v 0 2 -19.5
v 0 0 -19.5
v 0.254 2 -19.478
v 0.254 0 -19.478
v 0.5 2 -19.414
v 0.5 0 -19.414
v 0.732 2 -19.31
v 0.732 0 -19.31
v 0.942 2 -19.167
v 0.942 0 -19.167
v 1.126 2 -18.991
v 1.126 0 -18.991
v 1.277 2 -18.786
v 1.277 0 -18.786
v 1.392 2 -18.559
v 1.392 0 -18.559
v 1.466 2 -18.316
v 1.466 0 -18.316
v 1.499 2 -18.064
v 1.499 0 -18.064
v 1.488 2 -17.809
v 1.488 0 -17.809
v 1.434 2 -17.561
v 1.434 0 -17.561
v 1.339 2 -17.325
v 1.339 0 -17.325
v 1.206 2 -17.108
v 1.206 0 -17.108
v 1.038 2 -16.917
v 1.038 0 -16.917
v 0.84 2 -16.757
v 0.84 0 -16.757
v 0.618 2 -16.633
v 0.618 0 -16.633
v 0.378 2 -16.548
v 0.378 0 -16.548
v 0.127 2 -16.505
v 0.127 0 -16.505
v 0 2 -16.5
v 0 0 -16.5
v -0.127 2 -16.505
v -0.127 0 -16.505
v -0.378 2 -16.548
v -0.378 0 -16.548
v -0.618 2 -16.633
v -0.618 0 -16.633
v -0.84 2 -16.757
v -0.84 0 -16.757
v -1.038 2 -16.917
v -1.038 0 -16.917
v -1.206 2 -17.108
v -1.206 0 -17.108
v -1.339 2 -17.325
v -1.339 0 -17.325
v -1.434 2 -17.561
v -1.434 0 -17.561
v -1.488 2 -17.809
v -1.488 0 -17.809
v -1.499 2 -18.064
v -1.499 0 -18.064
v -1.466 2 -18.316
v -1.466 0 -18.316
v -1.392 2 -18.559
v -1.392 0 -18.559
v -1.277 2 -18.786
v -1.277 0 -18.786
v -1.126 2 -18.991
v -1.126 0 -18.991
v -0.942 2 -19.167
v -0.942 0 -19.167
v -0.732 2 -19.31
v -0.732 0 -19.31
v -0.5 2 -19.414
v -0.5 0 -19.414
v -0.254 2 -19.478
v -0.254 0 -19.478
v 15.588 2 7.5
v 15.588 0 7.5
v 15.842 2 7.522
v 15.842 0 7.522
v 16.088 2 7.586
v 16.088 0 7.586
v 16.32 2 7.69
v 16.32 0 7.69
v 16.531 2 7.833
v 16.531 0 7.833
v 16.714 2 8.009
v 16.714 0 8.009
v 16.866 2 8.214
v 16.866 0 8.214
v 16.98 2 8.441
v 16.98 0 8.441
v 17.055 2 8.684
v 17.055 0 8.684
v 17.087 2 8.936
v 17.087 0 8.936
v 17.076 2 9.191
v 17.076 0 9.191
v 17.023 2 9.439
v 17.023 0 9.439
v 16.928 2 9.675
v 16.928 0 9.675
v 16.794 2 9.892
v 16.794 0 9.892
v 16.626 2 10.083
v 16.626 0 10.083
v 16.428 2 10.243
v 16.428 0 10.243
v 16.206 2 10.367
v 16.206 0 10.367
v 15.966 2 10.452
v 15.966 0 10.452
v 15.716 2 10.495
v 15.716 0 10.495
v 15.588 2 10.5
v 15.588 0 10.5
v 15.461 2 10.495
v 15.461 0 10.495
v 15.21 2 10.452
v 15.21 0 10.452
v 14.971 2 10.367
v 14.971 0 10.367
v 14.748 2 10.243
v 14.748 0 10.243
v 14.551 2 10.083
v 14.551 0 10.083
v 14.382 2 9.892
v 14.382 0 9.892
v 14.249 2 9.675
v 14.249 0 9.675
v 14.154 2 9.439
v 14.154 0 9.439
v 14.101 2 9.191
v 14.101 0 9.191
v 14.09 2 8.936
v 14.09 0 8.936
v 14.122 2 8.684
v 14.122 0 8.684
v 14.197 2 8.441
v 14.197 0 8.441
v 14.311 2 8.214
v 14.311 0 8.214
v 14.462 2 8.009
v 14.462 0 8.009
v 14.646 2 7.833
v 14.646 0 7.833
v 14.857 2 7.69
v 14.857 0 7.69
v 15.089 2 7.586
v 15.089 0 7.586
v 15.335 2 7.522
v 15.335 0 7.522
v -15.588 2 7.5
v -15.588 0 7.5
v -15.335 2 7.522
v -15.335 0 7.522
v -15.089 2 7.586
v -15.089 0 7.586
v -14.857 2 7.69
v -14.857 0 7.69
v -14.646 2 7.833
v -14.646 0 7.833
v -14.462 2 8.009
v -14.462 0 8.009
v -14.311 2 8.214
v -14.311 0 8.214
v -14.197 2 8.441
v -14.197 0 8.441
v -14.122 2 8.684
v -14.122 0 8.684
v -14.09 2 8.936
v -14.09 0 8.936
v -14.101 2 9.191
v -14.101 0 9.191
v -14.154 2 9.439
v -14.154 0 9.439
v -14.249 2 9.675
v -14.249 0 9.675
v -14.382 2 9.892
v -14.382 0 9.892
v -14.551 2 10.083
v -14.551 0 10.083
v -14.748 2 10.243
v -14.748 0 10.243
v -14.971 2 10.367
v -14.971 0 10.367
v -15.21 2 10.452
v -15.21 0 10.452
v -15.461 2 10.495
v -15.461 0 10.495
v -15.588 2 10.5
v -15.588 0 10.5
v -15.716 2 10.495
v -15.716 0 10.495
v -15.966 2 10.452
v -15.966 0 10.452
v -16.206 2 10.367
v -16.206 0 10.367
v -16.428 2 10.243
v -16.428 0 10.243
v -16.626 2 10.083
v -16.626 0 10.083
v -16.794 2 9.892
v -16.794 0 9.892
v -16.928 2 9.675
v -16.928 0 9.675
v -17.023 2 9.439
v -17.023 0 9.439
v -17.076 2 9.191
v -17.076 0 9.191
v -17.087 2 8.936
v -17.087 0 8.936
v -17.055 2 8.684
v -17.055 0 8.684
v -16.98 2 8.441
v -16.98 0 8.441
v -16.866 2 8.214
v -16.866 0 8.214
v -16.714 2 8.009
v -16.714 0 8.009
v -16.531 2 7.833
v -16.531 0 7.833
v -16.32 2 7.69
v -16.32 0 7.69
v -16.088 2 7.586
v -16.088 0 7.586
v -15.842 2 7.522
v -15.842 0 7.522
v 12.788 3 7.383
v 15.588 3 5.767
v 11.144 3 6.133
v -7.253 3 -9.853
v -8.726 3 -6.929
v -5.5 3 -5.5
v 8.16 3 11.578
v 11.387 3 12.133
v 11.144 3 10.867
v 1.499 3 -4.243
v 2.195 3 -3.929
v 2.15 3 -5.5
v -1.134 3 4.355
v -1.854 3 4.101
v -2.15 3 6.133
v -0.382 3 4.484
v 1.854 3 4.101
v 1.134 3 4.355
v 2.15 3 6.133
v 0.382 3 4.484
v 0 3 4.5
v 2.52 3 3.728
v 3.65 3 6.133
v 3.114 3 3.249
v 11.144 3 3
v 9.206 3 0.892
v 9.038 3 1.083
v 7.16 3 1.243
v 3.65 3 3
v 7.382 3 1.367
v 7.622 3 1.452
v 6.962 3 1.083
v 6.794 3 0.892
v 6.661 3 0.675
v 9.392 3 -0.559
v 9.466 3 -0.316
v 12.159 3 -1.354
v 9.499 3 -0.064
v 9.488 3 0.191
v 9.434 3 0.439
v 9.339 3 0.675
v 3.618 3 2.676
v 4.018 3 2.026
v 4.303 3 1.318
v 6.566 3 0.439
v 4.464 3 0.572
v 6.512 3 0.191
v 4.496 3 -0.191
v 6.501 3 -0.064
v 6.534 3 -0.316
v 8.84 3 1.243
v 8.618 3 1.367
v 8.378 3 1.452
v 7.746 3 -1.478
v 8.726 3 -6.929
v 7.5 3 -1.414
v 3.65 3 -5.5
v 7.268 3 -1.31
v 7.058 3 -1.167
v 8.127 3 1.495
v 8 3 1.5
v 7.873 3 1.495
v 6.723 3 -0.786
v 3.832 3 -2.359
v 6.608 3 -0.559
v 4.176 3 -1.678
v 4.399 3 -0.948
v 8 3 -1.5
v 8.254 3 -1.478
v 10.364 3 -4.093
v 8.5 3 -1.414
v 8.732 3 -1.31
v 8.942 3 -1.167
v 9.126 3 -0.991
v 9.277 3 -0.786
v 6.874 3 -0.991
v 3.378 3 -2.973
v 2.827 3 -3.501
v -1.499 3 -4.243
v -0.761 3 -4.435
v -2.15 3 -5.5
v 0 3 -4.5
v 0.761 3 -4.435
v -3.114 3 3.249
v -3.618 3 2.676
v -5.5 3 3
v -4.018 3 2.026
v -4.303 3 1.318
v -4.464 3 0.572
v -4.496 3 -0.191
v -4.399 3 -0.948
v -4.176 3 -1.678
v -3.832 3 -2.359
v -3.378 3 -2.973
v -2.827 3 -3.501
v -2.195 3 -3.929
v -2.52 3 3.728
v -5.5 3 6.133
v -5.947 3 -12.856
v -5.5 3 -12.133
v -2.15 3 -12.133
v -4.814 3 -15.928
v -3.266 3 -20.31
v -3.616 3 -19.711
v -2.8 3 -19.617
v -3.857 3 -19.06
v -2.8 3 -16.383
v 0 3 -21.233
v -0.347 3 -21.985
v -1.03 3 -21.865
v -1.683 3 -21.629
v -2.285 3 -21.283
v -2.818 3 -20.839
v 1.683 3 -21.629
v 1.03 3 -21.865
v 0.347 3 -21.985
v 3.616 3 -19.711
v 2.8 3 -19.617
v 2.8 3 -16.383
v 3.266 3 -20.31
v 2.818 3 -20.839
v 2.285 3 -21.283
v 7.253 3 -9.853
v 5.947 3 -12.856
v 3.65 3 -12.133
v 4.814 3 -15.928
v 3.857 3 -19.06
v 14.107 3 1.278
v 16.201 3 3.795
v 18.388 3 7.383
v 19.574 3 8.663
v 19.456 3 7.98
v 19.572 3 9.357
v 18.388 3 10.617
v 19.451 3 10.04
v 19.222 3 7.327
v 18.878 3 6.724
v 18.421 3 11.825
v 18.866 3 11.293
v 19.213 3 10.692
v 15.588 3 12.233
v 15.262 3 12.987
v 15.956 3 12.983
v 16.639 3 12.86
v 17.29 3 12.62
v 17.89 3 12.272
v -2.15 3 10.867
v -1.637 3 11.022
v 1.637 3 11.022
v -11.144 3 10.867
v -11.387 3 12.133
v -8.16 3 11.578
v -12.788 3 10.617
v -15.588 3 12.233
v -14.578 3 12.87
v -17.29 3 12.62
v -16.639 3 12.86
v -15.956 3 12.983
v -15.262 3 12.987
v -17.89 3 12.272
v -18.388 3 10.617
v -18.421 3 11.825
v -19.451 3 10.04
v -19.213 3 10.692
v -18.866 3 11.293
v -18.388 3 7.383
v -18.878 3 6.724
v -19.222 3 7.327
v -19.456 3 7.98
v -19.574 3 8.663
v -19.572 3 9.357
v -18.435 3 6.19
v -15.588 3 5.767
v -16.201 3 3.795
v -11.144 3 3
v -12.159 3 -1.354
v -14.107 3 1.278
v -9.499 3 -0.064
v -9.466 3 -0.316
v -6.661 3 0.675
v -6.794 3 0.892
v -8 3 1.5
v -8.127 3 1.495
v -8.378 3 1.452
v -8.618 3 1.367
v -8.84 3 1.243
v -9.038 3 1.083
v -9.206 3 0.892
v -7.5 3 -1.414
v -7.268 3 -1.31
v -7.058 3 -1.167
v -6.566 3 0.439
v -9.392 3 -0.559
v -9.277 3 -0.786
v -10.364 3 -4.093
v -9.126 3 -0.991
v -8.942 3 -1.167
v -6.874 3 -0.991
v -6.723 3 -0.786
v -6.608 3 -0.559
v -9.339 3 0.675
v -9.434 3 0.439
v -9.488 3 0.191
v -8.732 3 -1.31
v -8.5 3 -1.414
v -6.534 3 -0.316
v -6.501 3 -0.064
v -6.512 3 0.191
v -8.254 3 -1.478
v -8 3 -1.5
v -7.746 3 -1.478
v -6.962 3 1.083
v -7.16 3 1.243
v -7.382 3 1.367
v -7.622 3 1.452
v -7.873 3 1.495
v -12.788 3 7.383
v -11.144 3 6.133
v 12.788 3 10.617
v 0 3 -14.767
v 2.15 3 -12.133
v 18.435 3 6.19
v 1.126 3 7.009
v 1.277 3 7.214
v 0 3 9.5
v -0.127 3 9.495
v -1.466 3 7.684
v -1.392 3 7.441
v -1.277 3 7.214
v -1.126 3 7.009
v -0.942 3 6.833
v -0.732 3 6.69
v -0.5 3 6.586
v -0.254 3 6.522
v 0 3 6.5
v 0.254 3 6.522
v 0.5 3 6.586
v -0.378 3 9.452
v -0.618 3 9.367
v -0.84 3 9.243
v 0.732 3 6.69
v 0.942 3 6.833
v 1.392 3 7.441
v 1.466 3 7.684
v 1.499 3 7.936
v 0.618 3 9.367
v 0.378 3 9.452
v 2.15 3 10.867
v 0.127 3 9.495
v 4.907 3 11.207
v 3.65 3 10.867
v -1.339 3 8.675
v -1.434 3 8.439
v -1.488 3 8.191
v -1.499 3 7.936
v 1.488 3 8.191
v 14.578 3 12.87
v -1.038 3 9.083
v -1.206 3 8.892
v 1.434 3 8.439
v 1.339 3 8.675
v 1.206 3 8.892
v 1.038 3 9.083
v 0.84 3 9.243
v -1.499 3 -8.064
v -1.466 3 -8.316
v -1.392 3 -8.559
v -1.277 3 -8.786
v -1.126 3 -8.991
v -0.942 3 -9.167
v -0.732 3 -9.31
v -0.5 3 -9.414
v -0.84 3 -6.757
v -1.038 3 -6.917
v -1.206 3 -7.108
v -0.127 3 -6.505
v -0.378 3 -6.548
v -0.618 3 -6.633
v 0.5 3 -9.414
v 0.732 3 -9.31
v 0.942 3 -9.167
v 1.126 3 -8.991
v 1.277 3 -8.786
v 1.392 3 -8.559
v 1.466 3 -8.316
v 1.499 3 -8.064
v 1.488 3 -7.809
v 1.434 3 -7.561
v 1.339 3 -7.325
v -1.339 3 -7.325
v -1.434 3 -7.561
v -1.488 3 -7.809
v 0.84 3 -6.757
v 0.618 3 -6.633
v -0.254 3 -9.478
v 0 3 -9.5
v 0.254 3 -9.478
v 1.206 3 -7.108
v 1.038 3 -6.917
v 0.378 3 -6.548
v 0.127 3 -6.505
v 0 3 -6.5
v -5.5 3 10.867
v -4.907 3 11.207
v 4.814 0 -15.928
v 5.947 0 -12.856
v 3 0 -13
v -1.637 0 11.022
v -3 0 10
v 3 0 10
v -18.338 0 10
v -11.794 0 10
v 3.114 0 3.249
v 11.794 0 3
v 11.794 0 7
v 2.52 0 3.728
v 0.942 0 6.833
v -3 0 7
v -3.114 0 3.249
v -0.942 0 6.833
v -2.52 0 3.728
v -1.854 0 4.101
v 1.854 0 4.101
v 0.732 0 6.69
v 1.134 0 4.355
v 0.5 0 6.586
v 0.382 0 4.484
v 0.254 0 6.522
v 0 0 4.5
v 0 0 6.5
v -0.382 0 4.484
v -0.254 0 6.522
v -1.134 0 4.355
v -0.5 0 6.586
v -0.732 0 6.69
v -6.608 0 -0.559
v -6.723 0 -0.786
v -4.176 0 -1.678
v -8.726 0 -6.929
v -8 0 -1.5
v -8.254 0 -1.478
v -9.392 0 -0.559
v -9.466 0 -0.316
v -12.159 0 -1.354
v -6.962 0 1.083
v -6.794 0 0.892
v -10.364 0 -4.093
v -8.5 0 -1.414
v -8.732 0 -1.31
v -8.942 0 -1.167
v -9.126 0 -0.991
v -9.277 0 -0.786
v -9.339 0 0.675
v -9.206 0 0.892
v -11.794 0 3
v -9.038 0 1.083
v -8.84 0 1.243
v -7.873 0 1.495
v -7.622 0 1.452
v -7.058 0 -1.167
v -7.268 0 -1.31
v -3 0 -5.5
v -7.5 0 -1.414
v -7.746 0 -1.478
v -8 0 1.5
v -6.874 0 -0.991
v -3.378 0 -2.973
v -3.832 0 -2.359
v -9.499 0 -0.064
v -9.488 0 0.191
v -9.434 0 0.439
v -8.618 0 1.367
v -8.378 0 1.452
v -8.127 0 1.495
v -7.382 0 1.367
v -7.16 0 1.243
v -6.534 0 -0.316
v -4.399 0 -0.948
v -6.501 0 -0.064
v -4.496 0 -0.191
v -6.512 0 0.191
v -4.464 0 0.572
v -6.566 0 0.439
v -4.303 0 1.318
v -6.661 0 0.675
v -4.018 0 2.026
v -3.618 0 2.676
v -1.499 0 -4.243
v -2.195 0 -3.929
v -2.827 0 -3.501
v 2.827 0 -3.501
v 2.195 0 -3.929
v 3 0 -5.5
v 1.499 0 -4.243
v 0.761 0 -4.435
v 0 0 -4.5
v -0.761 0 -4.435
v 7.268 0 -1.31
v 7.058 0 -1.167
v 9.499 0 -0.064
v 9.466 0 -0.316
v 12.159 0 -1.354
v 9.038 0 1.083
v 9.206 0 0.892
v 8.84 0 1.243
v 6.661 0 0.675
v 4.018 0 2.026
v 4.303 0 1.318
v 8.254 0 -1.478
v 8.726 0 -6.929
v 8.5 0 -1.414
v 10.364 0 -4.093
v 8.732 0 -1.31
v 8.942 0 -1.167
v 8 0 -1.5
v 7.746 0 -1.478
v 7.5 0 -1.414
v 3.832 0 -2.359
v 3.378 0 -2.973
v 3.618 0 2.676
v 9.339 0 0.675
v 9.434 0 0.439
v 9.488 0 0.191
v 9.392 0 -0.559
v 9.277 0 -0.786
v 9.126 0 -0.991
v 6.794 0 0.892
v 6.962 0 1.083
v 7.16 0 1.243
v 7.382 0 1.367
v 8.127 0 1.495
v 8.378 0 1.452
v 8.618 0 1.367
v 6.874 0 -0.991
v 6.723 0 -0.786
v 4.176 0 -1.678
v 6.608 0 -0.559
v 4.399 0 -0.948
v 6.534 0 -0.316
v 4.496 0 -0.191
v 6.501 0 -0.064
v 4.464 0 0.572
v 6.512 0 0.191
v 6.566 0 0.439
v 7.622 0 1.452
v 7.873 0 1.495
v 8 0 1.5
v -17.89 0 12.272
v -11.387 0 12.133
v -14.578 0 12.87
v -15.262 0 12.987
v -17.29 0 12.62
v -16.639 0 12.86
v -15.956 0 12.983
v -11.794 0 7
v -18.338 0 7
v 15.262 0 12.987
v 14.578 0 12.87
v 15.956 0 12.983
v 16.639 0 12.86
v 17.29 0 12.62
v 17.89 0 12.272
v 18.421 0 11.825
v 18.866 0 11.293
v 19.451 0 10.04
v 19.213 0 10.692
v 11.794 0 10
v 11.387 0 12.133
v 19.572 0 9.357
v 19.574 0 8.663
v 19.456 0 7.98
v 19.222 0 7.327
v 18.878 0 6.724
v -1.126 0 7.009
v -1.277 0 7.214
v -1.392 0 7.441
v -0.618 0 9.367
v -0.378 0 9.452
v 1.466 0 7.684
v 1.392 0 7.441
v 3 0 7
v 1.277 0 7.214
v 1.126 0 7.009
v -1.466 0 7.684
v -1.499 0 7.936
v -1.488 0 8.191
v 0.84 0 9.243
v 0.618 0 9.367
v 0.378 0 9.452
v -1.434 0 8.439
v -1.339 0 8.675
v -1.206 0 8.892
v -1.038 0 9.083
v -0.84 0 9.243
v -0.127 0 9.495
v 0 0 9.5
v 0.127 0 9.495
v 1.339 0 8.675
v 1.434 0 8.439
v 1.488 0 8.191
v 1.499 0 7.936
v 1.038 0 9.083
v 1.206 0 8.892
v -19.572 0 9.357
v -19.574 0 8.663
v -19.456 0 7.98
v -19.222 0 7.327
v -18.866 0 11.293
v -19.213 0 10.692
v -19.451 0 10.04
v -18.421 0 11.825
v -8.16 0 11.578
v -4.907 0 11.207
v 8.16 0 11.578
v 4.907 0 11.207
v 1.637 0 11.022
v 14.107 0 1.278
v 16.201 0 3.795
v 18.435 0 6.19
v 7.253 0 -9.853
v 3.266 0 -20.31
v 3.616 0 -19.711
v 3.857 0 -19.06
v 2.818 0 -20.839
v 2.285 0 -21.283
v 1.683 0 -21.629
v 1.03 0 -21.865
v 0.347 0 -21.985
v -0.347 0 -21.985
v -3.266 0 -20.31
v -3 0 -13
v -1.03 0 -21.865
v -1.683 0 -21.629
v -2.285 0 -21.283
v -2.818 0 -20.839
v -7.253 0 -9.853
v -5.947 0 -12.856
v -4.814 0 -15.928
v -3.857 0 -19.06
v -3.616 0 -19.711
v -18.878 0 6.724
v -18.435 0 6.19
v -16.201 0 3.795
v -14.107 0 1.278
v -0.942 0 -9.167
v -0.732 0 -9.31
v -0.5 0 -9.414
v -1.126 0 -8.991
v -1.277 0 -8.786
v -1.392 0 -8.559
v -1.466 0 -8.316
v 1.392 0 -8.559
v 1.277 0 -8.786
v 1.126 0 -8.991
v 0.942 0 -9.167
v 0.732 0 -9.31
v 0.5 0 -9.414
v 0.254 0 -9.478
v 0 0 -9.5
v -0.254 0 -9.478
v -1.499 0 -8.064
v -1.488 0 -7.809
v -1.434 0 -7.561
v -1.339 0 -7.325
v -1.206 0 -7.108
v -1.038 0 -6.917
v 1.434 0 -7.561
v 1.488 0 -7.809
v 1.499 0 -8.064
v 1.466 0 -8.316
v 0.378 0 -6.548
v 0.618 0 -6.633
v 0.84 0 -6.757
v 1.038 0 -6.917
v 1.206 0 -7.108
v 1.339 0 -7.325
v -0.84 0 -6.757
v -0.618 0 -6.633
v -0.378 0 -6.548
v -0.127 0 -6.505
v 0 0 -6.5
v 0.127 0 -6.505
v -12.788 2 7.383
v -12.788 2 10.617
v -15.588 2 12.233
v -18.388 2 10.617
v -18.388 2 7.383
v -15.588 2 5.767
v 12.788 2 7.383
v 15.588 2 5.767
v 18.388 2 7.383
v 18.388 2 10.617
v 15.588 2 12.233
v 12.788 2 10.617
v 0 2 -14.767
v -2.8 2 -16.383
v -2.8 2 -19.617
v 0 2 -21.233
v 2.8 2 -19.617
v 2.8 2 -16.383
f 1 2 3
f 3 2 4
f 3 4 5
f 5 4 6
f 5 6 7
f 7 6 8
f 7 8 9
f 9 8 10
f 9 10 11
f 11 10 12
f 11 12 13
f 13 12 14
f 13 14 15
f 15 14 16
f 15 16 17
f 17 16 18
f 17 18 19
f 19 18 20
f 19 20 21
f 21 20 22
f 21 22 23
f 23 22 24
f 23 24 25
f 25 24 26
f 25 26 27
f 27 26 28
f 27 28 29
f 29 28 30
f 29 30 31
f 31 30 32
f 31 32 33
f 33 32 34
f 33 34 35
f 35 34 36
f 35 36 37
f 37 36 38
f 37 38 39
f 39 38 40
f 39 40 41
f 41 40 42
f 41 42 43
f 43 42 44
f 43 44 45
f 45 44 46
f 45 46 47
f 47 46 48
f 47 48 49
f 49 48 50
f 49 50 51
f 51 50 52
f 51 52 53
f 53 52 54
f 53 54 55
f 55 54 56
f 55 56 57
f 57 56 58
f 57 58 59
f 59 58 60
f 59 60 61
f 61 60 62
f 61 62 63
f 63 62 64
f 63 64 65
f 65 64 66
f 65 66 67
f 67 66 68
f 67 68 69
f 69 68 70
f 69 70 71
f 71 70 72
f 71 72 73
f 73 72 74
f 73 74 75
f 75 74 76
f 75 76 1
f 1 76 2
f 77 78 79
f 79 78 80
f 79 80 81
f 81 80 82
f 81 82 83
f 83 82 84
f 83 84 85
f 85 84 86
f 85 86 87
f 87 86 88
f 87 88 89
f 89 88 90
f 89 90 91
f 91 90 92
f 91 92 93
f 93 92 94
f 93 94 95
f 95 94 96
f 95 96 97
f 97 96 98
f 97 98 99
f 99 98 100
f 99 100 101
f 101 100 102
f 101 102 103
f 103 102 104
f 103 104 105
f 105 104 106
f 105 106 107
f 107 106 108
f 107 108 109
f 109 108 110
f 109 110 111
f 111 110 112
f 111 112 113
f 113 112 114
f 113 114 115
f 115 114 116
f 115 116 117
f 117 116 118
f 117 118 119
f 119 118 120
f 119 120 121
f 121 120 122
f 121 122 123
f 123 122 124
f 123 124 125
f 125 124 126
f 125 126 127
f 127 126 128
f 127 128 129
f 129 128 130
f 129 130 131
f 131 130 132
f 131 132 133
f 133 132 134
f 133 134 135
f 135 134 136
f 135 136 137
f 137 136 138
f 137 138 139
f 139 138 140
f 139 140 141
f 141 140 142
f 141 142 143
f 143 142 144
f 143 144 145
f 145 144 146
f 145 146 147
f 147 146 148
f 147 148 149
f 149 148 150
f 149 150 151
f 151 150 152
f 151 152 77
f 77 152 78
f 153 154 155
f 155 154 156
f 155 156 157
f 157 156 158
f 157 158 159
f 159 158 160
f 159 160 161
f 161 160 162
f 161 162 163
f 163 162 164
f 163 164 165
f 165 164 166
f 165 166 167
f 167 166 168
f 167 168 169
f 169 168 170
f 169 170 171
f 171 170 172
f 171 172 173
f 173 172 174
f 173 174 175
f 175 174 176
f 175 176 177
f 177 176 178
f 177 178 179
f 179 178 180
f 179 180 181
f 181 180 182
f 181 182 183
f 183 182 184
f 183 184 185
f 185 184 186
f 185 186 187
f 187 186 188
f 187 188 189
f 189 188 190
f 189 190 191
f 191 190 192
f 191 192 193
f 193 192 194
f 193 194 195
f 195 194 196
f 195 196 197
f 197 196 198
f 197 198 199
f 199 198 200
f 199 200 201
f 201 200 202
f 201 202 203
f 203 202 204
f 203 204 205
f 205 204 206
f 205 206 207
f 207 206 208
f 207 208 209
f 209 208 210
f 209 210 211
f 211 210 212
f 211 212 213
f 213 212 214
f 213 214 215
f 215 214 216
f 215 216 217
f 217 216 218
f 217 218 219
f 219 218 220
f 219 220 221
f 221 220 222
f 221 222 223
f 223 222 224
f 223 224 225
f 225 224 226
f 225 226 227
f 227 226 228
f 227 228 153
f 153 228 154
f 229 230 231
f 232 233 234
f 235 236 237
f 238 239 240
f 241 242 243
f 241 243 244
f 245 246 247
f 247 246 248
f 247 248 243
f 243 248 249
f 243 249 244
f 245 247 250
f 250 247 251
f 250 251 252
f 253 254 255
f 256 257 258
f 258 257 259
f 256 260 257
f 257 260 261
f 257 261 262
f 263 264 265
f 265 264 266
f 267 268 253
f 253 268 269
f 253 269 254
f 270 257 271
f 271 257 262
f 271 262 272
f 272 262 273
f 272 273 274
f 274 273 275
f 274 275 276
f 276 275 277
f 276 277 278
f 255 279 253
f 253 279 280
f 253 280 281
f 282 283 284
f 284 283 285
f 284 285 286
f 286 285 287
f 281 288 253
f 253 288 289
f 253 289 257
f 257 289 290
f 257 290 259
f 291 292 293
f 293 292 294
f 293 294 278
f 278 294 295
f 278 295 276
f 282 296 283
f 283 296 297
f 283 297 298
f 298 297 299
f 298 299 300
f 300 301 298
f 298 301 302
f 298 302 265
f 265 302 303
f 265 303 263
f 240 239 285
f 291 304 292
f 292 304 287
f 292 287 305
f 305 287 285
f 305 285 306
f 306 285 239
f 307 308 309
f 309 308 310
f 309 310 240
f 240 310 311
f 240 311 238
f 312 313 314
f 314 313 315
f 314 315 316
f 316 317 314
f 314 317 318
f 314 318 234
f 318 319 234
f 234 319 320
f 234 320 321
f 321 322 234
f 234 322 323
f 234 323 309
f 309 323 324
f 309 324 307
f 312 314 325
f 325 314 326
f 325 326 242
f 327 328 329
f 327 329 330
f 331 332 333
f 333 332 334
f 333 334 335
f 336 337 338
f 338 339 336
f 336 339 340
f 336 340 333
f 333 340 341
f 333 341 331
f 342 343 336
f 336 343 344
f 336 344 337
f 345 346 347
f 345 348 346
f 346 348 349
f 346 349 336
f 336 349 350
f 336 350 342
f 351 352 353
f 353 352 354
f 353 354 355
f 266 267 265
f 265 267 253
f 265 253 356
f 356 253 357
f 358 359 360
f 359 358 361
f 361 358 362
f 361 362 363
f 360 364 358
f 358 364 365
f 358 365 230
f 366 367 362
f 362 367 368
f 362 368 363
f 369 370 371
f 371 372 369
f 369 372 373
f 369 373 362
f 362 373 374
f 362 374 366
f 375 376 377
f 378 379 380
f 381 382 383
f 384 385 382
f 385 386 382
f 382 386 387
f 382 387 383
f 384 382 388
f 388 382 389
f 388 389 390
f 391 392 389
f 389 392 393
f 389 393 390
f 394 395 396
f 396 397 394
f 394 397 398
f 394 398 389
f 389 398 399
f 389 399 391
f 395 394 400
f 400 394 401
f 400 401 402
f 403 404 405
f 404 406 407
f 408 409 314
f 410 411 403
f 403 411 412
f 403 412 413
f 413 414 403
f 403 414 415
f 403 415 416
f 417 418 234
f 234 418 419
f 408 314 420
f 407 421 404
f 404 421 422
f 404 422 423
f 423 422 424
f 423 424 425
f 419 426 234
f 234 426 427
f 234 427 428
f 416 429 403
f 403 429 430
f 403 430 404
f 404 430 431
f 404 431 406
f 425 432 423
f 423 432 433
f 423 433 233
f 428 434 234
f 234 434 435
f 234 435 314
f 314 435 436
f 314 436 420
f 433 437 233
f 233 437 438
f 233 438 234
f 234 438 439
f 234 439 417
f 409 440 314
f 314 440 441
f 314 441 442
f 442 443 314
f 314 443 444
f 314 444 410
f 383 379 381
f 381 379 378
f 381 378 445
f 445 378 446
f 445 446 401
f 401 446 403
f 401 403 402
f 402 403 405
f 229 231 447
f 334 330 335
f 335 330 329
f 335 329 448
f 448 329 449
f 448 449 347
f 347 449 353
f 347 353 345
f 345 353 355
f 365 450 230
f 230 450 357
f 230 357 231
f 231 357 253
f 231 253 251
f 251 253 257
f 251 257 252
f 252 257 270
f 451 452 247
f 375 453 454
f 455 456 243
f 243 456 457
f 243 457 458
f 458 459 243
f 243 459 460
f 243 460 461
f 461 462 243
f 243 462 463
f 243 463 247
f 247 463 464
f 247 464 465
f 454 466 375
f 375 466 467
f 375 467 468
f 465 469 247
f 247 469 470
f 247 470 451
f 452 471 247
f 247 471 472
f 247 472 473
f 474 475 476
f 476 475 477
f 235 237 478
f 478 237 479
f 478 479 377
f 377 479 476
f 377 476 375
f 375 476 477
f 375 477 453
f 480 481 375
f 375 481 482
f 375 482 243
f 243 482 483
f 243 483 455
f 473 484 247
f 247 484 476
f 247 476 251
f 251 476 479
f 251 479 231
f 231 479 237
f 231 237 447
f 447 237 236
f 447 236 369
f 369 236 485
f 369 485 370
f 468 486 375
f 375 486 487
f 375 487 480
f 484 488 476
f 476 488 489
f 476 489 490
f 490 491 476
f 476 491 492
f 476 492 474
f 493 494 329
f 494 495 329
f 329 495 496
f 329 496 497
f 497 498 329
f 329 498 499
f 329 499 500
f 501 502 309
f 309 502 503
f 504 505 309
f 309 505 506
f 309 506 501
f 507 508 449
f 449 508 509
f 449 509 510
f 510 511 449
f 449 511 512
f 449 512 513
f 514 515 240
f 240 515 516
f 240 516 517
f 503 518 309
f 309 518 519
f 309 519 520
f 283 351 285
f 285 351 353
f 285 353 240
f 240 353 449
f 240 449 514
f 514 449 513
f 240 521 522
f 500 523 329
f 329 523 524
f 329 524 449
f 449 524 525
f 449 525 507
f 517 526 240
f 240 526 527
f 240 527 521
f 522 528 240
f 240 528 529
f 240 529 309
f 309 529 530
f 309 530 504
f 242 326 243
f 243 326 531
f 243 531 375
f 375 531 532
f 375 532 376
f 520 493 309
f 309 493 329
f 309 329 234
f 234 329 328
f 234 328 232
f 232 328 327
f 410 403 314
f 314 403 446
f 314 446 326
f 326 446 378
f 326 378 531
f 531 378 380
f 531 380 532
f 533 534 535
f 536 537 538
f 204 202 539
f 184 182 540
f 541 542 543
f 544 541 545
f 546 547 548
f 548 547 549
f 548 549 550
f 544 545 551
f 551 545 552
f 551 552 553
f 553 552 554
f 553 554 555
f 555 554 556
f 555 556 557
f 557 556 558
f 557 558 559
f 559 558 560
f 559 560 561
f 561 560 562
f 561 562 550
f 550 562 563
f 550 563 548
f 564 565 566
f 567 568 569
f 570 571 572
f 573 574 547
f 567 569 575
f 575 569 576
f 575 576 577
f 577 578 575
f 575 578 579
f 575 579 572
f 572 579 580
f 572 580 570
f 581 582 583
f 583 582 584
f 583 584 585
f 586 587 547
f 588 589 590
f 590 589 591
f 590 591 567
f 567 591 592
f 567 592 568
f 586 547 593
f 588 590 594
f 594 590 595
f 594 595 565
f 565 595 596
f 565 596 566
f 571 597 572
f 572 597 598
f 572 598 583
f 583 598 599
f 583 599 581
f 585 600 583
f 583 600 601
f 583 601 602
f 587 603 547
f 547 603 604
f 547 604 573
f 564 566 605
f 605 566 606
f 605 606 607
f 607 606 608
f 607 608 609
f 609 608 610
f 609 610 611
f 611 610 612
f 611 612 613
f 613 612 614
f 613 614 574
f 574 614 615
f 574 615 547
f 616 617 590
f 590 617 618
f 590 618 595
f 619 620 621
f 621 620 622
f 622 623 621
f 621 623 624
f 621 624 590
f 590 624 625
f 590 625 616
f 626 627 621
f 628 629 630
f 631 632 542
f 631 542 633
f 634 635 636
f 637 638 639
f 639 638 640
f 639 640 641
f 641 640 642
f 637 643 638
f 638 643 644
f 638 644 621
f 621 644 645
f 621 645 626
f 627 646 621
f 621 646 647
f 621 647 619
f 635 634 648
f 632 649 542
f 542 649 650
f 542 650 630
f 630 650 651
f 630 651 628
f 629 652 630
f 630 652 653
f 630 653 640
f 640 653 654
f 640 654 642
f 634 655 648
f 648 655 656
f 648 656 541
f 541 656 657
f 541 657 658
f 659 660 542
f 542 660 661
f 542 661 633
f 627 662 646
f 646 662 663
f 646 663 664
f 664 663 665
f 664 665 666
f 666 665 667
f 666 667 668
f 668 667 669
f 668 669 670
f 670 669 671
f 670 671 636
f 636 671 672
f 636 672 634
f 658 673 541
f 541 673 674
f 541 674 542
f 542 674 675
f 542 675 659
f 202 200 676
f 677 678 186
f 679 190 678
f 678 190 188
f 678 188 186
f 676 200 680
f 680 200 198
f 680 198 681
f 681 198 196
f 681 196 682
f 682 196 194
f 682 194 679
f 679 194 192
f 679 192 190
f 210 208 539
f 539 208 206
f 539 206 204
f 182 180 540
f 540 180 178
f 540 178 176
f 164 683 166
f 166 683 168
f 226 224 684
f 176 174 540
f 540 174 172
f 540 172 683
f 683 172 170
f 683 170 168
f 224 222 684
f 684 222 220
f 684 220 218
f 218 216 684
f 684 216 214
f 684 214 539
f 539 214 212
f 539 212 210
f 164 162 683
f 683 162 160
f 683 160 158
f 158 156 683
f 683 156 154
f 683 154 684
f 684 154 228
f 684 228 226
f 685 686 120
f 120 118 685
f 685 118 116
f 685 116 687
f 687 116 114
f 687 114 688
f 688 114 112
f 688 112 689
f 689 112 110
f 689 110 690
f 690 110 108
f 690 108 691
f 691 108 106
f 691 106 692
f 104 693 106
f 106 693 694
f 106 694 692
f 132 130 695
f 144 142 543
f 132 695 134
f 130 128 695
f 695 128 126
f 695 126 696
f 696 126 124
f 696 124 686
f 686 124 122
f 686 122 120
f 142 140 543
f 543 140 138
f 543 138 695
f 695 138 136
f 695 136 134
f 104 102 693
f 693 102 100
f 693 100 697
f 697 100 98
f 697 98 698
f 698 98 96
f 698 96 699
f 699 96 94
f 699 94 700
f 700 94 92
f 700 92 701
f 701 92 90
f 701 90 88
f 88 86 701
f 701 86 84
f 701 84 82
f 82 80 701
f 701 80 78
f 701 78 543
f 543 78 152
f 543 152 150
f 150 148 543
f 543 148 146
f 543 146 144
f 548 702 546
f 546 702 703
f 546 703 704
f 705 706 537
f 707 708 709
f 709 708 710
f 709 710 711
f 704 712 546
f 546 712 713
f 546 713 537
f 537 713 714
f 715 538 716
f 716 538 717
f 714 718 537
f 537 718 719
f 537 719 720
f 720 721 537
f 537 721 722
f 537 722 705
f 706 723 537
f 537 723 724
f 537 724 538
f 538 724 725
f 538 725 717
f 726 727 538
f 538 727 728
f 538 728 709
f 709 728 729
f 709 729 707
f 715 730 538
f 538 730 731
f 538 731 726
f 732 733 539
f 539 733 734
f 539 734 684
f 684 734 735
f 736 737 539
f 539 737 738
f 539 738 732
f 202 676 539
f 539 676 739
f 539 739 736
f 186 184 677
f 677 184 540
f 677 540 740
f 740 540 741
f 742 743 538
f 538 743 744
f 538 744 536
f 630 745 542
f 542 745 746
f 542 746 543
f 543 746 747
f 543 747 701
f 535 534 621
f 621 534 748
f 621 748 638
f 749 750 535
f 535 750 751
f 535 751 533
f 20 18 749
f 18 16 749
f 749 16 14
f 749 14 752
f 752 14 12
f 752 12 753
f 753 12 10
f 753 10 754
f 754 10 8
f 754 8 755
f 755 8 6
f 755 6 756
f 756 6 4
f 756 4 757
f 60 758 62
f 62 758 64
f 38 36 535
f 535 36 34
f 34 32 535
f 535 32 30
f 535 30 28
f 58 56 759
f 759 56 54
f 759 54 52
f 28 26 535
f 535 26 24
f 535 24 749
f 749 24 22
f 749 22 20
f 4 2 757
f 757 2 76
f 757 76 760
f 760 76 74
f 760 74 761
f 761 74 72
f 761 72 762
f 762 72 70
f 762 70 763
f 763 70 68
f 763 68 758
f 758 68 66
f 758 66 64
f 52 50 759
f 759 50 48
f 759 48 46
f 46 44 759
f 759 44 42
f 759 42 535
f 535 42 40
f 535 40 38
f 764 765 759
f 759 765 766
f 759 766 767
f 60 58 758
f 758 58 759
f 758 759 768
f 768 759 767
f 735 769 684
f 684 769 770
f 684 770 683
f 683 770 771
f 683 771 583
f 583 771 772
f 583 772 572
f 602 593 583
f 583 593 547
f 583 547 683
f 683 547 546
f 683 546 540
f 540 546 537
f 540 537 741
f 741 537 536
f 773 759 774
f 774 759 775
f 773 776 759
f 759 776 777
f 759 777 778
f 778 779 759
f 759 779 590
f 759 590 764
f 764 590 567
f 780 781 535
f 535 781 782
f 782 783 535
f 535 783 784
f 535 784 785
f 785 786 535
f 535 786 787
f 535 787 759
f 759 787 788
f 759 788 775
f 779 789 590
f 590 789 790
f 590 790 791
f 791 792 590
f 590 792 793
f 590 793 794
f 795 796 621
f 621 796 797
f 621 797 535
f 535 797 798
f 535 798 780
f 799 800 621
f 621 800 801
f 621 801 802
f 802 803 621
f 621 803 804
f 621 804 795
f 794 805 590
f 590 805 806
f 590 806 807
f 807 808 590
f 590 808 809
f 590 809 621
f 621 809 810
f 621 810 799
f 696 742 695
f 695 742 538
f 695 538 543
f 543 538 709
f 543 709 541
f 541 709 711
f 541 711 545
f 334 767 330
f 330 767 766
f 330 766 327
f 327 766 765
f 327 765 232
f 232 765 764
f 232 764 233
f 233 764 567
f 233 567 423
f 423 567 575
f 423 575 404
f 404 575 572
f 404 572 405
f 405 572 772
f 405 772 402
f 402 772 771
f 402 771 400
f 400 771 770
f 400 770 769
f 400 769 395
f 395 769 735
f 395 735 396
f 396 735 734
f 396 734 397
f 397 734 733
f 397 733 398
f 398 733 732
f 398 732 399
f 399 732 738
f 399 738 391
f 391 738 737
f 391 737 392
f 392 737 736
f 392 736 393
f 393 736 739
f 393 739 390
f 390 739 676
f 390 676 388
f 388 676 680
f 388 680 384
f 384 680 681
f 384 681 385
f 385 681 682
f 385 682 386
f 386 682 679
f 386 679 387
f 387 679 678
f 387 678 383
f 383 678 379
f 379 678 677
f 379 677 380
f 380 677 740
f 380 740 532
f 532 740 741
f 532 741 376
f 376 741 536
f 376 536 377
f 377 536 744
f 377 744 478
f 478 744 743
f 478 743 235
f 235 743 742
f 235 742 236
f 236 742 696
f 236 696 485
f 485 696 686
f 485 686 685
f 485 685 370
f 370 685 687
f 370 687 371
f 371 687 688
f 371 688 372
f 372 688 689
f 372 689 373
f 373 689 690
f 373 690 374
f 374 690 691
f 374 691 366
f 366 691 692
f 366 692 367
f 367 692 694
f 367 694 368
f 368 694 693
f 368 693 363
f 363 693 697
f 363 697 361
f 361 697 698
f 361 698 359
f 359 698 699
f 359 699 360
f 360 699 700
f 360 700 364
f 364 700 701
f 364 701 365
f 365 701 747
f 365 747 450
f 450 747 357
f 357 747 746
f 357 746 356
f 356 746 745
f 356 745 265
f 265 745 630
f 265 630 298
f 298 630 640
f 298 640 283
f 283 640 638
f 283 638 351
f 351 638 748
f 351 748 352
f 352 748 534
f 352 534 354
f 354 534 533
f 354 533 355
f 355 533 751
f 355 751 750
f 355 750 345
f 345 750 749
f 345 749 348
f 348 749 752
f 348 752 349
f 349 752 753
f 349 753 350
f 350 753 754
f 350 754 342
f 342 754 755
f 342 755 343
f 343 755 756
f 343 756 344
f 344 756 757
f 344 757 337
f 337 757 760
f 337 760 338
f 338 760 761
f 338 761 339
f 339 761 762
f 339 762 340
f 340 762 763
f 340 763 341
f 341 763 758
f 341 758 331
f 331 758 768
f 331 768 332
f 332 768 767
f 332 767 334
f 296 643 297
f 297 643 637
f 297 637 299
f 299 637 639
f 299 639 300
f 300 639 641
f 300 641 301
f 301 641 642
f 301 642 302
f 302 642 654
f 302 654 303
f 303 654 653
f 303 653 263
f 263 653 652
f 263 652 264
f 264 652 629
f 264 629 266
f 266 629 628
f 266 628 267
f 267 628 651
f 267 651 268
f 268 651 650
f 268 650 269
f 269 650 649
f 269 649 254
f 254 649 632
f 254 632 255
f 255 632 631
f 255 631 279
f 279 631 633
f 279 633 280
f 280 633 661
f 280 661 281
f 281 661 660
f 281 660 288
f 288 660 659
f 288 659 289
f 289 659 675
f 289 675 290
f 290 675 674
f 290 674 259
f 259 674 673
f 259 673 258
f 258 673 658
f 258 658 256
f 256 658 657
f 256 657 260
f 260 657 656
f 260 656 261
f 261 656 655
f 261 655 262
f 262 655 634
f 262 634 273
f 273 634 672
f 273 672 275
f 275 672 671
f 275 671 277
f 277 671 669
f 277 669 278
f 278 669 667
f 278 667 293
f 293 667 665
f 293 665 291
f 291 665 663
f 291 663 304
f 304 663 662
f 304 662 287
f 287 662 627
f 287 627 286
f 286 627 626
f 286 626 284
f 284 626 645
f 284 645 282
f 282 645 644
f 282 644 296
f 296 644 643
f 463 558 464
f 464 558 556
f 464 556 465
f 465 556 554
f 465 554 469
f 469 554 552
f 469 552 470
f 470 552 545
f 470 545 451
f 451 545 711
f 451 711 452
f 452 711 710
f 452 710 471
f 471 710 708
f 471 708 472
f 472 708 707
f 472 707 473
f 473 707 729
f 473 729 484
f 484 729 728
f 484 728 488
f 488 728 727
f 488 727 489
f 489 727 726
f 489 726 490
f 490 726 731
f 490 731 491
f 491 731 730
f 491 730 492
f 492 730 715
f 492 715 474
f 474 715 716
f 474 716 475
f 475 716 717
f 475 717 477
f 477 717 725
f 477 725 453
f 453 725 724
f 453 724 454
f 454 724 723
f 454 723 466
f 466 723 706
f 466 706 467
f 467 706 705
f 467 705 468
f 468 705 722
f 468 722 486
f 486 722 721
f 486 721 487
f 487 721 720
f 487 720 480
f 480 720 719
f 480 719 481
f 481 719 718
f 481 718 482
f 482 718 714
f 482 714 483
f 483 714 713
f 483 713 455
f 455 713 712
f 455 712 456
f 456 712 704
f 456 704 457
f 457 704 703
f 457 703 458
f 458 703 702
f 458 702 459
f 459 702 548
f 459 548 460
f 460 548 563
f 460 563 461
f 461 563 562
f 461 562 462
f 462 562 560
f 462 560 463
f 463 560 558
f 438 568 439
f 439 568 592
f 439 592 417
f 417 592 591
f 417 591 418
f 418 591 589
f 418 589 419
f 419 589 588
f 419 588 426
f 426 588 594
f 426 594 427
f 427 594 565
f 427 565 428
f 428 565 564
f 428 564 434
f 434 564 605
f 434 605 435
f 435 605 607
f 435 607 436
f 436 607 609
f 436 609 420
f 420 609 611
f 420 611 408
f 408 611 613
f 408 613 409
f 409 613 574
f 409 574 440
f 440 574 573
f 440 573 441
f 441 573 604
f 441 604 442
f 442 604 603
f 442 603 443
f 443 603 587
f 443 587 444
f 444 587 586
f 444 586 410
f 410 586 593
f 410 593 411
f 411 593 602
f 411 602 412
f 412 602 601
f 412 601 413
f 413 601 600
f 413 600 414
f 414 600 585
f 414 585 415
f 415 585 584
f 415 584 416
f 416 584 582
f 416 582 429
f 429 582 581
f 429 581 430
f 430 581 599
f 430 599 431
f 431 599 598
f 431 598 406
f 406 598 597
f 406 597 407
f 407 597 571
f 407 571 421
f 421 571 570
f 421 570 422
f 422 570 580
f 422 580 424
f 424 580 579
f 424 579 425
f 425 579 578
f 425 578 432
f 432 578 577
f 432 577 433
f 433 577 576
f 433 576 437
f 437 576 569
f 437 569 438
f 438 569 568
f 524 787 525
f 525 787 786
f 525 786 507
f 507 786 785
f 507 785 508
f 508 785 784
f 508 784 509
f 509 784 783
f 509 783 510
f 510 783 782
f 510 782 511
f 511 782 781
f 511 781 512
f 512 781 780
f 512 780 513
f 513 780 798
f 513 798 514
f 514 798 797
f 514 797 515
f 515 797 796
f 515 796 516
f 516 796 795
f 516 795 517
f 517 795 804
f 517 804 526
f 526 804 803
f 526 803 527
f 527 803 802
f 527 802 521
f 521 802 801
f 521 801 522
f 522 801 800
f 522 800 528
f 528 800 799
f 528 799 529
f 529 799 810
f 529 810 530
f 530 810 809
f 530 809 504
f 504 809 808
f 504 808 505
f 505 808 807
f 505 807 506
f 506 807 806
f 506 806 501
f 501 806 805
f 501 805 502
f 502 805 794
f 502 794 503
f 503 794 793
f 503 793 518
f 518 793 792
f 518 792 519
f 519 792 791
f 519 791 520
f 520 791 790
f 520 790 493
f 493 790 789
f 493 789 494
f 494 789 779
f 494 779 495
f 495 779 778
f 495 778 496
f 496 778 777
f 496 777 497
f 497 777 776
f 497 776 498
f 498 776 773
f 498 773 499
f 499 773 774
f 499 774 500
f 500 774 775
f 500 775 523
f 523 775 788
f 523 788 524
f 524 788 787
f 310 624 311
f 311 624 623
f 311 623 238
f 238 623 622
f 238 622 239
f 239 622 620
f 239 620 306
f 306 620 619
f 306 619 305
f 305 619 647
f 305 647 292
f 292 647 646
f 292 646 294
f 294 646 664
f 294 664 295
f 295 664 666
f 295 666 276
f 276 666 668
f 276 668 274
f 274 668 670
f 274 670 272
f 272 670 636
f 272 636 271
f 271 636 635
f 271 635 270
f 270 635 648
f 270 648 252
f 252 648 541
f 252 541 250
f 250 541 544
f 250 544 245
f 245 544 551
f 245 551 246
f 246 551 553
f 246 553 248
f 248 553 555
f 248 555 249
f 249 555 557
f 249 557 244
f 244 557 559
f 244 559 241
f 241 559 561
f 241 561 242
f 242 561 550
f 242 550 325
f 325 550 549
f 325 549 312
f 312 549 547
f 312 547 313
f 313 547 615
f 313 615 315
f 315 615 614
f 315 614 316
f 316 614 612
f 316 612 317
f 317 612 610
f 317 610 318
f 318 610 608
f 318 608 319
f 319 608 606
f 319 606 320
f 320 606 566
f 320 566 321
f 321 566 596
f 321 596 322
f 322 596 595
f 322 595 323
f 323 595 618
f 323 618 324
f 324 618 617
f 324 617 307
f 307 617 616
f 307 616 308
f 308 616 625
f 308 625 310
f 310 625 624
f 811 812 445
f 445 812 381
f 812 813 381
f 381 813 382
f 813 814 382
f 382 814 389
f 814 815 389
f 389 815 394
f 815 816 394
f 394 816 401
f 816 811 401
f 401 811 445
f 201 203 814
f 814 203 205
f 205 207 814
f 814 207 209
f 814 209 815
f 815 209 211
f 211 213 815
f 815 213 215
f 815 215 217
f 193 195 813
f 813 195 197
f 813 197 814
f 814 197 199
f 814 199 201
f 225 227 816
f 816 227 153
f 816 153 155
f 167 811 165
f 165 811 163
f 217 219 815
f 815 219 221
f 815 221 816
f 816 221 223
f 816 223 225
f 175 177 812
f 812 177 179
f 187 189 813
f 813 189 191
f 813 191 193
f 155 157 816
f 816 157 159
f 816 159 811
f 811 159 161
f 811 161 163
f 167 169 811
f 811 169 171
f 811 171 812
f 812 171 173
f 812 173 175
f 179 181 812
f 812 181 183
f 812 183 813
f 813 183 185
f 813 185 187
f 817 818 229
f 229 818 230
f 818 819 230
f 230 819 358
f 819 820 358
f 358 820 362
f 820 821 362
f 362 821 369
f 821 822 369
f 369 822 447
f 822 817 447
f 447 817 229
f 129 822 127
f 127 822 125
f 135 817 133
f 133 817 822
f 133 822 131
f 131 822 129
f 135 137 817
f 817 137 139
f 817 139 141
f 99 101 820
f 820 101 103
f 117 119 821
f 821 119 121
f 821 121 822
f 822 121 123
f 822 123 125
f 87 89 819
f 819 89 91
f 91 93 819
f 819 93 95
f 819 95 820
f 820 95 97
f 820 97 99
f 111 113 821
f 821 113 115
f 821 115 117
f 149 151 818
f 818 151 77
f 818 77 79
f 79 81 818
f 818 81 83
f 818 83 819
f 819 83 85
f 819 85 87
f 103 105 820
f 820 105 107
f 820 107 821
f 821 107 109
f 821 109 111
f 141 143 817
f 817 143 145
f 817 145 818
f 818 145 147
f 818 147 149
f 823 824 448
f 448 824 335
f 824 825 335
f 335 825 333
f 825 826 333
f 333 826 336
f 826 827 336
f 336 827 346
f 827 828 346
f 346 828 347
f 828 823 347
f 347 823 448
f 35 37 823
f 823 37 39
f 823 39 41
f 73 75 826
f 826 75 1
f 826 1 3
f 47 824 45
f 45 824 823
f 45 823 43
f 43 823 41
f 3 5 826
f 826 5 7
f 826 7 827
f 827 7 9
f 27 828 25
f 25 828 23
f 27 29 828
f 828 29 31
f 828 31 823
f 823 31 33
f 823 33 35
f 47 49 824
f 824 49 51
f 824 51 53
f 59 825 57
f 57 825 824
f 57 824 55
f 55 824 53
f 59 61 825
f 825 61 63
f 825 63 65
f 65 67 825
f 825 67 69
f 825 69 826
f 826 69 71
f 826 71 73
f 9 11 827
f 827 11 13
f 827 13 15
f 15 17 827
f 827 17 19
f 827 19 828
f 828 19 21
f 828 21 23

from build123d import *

# Parameters (mm, degrees)
SKETCH_1_R          = 1.5
SKETCH_1_R_2        = 4.5
EXTRUDE_1_DEPTH     = 3
CUT_EXTRUDE_1_DEPTH = 1


with BuildPart() as part:
    # 草图1 → 凸台-拉伸1 (new body)
    with BuildSketch(Plane(origin=(0, 0, 0), x_dir=(1, 0, 0), z_dir=(0, 1, 0))):
        with BuildLine():
            ThreePointArc((3.85699385, 19.059999265), (0, 22), (-3.85699385, 19.059999265))
            ThreePointArc((-3.85699385, 19.059999265), (-9.524981738, 5.499250771), (-18.434940485, -6.189744976))
            ThreePointArc((-18.434940485, -6.189744976), (-19.052558883, -11), (-14.577946635, -12.870254289))
            ThreePointArc((-14.577946635, -12.870254289), (0, -10.998501541), (14.577946635, -12.870254289))
            ThreePointArc((14.577946635, -12.870254289), (19.052558883, -11), (18.434940485, -6.189744976))
            ThreePointArc((18.434940485, -6.189744976), (9.524981738, 5.499250771), (3.85699385, 19.059999265))
        make_face()
        with Locations((8, 0)):
            Circle(SKETCH_1_R, mode=Mode.SUBTRACT)
        with Locations((0, -8)):
            Circle(SKETCH_1_R, mode=Mode.SUBTRACT)
        with Locations((-8, 0)):
            Circle(SKETCH_1_R, mode=Mode.SUBTRACT)
        with Locations((0, 8)):
            Circle(SKETCH_1_R, mode=Mode.SUBTRACT)
        with Locations((0, 18)):
            Circle(SKETCH_1_R, mode=Mode.SUBTRACT)
        with Locations((15.588457268, -9)):
            Circle(SKETCH_1_R, mode=Mode.SUBTRACT)
        with Locations((-15.588457268, -9)):
            Circle(SKETCH_1_R, mode=Mode.SUBTRACT)
        Circle(SKETCH_1_R_2, mode=Mode.SUBTRACT)
    extrude(amount=EXTRUDE_1_DEPTH)

    # 草图2 → 切除-拉伸1 (cut)
    with BuildSketch(Plane(origin=(0, 3, 0), x_dir=(1, 0, 0), z_dir=(0, 1, 0))):
        Polygon((0, 14.766838493), (2.8, 16.383419246), (2.8, 19.616580754), (0, 21.233161507), (-2.8, 19.616580754), (-2.8, 16.383419246), align=None)
        Polygon((12.788457268, -7.383419246), (12.788457268, -10.616580754), (15.588457268, -12.233161507), (18.388457268, -10.616580754), (18.388457268, -7.383419246), (15.588457268, -5.766838493), align=None)
        Polygon((-12.788457268, -7.383419246), (-15.588457268, -5.766838493), (-18.388457268, -7.383419246), (-18.388457268, -10.616580754), (-15.588457268, -12.233161507), (-12.788457268, -10.616580754), align=None)
    extrude(amount=-CUT_EXTRUDE_1_DEPTH, mode=Mode.SUBTRACT)


solid = part.part
